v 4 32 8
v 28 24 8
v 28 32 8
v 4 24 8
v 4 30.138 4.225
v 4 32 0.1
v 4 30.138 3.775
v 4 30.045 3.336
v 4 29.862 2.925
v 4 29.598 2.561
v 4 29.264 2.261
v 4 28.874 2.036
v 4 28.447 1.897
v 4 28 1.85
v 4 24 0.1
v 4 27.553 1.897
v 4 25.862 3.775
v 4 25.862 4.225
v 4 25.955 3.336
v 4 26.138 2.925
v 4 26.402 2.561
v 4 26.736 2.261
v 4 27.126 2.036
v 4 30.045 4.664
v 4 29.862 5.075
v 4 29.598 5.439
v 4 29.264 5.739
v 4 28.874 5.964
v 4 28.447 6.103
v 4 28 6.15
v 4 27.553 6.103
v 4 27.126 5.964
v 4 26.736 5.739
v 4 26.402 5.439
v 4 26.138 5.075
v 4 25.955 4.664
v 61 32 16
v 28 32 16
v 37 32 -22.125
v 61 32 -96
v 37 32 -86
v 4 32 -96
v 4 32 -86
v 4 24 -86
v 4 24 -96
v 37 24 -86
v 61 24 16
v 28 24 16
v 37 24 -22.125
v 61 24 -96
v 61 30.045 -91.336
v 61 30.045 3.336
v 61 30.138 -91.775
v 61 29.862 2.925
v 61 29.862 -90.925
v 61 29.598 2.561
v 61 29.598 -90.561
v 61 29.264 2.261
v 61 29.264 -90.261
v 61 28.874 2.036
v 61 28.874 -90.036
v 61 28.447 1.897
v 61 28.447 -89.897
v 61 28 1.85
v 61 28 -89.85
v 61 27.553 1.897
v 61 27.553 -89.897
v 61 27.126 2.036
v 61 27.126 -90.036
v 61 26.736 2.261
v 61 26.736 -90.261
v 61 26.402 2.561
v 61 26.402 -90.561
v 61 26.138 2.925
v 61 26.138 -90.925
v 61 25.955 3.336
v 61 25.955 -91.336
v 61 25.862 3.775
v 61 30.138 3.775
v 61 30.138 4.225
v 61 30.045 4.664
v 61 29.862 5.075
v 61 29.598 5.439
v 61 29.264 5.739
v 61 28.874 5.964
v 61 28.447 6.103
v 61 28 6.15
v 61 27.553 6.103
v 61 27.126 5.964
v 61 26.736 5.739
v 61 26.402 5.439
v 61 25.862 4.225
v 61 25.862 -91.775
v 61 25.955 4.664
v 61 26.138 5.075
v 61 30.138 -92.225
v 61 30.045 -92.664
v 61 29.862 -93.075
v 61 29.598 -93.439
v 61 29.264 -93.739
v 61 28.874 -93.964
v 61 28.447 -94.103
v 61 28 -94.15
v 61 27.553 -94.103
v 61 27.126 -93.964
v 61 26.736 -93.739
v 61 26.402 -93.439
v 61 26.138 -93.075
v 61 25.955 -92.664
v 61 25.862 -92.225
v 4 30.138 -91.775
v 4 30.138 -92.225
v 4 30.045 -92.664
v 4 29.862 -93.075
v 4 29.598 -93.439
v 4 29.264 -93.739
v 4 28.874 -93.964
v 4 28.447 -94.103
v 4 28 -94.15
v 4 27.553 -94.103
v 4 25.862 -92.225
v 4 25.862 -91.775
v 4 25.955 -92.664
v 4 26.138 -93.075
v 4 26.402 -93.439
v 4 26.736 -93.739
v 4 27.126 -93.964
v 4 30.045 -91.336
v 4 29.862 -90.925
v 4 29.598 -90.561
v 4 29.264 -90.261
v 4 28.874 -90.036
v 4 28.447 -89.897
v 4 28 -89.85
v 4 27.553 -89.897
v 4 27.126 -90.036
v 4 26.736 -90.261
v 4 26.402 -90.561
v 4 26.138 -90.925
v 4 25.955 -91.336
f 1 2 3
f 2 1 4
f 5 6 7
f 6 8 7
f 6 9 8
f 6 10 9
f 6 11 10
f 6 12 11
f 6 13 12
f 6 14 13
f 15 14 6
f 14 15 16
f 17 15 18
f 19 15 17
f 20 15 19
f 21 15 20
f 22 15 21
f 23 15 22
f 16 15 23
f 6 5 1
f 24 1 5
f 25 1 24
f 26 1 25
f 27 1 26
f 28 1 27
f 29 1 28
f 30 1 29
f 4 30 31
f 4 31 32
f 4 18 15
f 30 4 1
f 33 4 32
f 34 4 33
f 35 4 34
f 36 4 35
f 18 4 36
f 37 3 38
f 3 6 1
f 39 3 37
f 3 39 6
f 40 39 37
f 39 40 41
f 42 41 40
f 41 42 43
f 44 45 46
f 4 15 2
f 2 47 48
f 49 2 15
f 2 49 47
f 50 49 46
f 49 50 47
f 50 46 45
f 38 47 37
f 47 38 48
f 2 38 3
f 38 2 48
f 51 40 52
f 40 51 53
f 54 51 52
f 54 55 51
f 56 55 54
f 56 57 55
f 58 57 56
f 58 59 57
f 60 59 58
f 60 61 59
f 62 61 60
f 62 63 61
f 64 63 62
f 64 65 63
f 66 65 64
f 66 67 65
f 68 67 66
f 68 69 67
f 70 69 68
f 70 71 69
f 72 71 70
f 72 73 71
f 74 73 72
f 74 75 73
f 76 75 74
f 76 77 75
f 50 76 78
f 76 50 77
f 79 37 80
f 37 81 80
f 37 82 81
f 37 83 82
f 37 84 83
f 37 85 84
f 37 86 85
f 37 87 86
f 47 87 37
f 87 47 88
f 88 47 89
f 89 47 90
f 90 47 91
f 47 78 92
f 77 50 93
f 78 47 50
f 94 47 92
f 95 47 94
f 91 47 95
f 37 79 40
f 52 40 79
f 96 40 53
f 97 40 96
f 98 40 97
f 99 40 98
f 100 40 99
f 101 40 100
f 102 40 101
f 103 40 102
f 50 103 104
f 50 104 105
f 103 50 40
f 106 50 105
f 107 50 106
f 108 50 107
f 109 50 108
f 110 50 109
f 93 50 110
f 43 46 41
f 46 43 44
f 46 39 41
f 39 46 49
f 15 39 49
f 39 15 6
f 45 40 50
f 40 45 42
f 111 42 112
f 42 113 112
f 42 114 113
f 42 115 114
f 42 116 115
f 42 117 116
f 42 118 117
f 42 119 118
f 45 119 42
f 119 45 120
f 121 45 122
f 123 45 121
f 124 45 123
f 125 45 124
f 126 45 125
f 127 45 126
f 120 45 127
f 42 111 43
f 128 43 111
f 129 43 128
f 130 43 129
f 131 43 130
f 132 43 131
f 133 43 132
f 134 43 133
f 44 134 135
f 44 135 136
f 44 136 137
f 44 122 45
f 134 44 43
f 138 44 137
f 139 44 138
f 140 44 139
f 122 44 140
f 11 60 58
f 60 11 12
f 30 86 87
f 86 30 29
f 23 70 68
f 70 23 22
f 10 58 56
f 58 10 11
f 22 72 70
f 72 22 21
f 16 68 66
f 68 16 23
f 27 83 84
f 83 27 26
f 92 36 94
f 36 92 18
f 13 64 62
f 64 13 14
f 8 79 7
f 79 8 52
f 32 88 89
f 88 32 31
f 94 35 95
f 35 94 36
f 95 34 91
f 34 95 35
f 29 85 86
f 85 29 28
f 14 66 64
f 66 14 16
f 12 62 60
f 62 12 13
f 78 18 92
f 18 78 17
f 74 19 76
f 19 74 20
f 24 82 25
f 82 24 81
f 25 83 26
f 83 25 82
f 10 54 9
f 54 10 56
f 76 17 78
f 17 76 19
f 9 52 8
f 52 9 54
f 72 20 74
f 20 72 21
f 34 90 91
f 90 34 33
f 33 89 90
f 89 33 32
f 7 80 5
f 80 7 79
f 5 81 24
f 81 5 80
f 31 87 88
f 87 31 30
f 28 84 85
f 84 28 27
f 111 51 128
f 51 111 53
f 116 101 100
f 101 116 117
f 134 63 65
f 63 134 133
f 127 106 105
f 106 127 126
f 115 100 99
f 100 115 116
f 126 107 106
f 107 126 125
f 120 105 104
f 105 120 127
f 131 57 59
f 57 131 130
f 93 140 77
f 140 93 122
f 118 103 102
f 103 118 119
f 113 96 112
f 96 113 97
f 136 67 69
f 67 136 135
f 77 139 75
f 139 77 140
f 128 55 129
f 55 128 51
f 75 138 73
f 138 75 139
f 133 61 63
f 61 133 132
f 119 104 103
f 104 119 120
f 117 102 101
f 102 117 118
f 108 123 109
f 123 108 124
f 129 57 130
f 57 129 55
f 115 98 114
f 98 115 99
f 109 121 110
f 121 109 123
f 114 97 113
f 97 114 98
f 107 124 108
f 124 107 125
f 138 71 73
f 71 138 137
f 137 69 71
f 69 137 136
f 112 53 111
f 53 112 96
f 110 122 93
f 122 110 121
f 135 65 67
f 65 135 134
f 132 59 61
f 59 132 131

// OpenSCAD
difference() {
union() {
    // left top
    translate([4,24,.1])
    cube([60,8,7.9]);
    
    translate([28,24,8])
    cube([36,8,8]);

    // left long side
    translate([37,24,-86])
    cube([24,8,90]);
    
    // left angled side
    translate([4,24,.1])
    rotate([0,33.96,0])
    cube([40,8,8]);
    
    translate([15,24,.1])
    rotate([0,33.96,0])
    cube([30,8,8]);
    
    translate([25,24,-7])
    cube([15,8,10]);
    
    // extend the left bottom
    translate([4,24,-96])
    cube([61,8,10]);
}
    // top left hole
    translate([-4,28,4])
    rotate([0,90,0])
    cylinder(r=2.15,90, $fn=30);

    // bottom left hole
    translate([-4,28,-92])
    rotate([0,90,0])
    cylinder(r=2.15,90, $fn=30);

    // front clean up
    translate([61,20,-100])
    cube([8,50,120]);
}
